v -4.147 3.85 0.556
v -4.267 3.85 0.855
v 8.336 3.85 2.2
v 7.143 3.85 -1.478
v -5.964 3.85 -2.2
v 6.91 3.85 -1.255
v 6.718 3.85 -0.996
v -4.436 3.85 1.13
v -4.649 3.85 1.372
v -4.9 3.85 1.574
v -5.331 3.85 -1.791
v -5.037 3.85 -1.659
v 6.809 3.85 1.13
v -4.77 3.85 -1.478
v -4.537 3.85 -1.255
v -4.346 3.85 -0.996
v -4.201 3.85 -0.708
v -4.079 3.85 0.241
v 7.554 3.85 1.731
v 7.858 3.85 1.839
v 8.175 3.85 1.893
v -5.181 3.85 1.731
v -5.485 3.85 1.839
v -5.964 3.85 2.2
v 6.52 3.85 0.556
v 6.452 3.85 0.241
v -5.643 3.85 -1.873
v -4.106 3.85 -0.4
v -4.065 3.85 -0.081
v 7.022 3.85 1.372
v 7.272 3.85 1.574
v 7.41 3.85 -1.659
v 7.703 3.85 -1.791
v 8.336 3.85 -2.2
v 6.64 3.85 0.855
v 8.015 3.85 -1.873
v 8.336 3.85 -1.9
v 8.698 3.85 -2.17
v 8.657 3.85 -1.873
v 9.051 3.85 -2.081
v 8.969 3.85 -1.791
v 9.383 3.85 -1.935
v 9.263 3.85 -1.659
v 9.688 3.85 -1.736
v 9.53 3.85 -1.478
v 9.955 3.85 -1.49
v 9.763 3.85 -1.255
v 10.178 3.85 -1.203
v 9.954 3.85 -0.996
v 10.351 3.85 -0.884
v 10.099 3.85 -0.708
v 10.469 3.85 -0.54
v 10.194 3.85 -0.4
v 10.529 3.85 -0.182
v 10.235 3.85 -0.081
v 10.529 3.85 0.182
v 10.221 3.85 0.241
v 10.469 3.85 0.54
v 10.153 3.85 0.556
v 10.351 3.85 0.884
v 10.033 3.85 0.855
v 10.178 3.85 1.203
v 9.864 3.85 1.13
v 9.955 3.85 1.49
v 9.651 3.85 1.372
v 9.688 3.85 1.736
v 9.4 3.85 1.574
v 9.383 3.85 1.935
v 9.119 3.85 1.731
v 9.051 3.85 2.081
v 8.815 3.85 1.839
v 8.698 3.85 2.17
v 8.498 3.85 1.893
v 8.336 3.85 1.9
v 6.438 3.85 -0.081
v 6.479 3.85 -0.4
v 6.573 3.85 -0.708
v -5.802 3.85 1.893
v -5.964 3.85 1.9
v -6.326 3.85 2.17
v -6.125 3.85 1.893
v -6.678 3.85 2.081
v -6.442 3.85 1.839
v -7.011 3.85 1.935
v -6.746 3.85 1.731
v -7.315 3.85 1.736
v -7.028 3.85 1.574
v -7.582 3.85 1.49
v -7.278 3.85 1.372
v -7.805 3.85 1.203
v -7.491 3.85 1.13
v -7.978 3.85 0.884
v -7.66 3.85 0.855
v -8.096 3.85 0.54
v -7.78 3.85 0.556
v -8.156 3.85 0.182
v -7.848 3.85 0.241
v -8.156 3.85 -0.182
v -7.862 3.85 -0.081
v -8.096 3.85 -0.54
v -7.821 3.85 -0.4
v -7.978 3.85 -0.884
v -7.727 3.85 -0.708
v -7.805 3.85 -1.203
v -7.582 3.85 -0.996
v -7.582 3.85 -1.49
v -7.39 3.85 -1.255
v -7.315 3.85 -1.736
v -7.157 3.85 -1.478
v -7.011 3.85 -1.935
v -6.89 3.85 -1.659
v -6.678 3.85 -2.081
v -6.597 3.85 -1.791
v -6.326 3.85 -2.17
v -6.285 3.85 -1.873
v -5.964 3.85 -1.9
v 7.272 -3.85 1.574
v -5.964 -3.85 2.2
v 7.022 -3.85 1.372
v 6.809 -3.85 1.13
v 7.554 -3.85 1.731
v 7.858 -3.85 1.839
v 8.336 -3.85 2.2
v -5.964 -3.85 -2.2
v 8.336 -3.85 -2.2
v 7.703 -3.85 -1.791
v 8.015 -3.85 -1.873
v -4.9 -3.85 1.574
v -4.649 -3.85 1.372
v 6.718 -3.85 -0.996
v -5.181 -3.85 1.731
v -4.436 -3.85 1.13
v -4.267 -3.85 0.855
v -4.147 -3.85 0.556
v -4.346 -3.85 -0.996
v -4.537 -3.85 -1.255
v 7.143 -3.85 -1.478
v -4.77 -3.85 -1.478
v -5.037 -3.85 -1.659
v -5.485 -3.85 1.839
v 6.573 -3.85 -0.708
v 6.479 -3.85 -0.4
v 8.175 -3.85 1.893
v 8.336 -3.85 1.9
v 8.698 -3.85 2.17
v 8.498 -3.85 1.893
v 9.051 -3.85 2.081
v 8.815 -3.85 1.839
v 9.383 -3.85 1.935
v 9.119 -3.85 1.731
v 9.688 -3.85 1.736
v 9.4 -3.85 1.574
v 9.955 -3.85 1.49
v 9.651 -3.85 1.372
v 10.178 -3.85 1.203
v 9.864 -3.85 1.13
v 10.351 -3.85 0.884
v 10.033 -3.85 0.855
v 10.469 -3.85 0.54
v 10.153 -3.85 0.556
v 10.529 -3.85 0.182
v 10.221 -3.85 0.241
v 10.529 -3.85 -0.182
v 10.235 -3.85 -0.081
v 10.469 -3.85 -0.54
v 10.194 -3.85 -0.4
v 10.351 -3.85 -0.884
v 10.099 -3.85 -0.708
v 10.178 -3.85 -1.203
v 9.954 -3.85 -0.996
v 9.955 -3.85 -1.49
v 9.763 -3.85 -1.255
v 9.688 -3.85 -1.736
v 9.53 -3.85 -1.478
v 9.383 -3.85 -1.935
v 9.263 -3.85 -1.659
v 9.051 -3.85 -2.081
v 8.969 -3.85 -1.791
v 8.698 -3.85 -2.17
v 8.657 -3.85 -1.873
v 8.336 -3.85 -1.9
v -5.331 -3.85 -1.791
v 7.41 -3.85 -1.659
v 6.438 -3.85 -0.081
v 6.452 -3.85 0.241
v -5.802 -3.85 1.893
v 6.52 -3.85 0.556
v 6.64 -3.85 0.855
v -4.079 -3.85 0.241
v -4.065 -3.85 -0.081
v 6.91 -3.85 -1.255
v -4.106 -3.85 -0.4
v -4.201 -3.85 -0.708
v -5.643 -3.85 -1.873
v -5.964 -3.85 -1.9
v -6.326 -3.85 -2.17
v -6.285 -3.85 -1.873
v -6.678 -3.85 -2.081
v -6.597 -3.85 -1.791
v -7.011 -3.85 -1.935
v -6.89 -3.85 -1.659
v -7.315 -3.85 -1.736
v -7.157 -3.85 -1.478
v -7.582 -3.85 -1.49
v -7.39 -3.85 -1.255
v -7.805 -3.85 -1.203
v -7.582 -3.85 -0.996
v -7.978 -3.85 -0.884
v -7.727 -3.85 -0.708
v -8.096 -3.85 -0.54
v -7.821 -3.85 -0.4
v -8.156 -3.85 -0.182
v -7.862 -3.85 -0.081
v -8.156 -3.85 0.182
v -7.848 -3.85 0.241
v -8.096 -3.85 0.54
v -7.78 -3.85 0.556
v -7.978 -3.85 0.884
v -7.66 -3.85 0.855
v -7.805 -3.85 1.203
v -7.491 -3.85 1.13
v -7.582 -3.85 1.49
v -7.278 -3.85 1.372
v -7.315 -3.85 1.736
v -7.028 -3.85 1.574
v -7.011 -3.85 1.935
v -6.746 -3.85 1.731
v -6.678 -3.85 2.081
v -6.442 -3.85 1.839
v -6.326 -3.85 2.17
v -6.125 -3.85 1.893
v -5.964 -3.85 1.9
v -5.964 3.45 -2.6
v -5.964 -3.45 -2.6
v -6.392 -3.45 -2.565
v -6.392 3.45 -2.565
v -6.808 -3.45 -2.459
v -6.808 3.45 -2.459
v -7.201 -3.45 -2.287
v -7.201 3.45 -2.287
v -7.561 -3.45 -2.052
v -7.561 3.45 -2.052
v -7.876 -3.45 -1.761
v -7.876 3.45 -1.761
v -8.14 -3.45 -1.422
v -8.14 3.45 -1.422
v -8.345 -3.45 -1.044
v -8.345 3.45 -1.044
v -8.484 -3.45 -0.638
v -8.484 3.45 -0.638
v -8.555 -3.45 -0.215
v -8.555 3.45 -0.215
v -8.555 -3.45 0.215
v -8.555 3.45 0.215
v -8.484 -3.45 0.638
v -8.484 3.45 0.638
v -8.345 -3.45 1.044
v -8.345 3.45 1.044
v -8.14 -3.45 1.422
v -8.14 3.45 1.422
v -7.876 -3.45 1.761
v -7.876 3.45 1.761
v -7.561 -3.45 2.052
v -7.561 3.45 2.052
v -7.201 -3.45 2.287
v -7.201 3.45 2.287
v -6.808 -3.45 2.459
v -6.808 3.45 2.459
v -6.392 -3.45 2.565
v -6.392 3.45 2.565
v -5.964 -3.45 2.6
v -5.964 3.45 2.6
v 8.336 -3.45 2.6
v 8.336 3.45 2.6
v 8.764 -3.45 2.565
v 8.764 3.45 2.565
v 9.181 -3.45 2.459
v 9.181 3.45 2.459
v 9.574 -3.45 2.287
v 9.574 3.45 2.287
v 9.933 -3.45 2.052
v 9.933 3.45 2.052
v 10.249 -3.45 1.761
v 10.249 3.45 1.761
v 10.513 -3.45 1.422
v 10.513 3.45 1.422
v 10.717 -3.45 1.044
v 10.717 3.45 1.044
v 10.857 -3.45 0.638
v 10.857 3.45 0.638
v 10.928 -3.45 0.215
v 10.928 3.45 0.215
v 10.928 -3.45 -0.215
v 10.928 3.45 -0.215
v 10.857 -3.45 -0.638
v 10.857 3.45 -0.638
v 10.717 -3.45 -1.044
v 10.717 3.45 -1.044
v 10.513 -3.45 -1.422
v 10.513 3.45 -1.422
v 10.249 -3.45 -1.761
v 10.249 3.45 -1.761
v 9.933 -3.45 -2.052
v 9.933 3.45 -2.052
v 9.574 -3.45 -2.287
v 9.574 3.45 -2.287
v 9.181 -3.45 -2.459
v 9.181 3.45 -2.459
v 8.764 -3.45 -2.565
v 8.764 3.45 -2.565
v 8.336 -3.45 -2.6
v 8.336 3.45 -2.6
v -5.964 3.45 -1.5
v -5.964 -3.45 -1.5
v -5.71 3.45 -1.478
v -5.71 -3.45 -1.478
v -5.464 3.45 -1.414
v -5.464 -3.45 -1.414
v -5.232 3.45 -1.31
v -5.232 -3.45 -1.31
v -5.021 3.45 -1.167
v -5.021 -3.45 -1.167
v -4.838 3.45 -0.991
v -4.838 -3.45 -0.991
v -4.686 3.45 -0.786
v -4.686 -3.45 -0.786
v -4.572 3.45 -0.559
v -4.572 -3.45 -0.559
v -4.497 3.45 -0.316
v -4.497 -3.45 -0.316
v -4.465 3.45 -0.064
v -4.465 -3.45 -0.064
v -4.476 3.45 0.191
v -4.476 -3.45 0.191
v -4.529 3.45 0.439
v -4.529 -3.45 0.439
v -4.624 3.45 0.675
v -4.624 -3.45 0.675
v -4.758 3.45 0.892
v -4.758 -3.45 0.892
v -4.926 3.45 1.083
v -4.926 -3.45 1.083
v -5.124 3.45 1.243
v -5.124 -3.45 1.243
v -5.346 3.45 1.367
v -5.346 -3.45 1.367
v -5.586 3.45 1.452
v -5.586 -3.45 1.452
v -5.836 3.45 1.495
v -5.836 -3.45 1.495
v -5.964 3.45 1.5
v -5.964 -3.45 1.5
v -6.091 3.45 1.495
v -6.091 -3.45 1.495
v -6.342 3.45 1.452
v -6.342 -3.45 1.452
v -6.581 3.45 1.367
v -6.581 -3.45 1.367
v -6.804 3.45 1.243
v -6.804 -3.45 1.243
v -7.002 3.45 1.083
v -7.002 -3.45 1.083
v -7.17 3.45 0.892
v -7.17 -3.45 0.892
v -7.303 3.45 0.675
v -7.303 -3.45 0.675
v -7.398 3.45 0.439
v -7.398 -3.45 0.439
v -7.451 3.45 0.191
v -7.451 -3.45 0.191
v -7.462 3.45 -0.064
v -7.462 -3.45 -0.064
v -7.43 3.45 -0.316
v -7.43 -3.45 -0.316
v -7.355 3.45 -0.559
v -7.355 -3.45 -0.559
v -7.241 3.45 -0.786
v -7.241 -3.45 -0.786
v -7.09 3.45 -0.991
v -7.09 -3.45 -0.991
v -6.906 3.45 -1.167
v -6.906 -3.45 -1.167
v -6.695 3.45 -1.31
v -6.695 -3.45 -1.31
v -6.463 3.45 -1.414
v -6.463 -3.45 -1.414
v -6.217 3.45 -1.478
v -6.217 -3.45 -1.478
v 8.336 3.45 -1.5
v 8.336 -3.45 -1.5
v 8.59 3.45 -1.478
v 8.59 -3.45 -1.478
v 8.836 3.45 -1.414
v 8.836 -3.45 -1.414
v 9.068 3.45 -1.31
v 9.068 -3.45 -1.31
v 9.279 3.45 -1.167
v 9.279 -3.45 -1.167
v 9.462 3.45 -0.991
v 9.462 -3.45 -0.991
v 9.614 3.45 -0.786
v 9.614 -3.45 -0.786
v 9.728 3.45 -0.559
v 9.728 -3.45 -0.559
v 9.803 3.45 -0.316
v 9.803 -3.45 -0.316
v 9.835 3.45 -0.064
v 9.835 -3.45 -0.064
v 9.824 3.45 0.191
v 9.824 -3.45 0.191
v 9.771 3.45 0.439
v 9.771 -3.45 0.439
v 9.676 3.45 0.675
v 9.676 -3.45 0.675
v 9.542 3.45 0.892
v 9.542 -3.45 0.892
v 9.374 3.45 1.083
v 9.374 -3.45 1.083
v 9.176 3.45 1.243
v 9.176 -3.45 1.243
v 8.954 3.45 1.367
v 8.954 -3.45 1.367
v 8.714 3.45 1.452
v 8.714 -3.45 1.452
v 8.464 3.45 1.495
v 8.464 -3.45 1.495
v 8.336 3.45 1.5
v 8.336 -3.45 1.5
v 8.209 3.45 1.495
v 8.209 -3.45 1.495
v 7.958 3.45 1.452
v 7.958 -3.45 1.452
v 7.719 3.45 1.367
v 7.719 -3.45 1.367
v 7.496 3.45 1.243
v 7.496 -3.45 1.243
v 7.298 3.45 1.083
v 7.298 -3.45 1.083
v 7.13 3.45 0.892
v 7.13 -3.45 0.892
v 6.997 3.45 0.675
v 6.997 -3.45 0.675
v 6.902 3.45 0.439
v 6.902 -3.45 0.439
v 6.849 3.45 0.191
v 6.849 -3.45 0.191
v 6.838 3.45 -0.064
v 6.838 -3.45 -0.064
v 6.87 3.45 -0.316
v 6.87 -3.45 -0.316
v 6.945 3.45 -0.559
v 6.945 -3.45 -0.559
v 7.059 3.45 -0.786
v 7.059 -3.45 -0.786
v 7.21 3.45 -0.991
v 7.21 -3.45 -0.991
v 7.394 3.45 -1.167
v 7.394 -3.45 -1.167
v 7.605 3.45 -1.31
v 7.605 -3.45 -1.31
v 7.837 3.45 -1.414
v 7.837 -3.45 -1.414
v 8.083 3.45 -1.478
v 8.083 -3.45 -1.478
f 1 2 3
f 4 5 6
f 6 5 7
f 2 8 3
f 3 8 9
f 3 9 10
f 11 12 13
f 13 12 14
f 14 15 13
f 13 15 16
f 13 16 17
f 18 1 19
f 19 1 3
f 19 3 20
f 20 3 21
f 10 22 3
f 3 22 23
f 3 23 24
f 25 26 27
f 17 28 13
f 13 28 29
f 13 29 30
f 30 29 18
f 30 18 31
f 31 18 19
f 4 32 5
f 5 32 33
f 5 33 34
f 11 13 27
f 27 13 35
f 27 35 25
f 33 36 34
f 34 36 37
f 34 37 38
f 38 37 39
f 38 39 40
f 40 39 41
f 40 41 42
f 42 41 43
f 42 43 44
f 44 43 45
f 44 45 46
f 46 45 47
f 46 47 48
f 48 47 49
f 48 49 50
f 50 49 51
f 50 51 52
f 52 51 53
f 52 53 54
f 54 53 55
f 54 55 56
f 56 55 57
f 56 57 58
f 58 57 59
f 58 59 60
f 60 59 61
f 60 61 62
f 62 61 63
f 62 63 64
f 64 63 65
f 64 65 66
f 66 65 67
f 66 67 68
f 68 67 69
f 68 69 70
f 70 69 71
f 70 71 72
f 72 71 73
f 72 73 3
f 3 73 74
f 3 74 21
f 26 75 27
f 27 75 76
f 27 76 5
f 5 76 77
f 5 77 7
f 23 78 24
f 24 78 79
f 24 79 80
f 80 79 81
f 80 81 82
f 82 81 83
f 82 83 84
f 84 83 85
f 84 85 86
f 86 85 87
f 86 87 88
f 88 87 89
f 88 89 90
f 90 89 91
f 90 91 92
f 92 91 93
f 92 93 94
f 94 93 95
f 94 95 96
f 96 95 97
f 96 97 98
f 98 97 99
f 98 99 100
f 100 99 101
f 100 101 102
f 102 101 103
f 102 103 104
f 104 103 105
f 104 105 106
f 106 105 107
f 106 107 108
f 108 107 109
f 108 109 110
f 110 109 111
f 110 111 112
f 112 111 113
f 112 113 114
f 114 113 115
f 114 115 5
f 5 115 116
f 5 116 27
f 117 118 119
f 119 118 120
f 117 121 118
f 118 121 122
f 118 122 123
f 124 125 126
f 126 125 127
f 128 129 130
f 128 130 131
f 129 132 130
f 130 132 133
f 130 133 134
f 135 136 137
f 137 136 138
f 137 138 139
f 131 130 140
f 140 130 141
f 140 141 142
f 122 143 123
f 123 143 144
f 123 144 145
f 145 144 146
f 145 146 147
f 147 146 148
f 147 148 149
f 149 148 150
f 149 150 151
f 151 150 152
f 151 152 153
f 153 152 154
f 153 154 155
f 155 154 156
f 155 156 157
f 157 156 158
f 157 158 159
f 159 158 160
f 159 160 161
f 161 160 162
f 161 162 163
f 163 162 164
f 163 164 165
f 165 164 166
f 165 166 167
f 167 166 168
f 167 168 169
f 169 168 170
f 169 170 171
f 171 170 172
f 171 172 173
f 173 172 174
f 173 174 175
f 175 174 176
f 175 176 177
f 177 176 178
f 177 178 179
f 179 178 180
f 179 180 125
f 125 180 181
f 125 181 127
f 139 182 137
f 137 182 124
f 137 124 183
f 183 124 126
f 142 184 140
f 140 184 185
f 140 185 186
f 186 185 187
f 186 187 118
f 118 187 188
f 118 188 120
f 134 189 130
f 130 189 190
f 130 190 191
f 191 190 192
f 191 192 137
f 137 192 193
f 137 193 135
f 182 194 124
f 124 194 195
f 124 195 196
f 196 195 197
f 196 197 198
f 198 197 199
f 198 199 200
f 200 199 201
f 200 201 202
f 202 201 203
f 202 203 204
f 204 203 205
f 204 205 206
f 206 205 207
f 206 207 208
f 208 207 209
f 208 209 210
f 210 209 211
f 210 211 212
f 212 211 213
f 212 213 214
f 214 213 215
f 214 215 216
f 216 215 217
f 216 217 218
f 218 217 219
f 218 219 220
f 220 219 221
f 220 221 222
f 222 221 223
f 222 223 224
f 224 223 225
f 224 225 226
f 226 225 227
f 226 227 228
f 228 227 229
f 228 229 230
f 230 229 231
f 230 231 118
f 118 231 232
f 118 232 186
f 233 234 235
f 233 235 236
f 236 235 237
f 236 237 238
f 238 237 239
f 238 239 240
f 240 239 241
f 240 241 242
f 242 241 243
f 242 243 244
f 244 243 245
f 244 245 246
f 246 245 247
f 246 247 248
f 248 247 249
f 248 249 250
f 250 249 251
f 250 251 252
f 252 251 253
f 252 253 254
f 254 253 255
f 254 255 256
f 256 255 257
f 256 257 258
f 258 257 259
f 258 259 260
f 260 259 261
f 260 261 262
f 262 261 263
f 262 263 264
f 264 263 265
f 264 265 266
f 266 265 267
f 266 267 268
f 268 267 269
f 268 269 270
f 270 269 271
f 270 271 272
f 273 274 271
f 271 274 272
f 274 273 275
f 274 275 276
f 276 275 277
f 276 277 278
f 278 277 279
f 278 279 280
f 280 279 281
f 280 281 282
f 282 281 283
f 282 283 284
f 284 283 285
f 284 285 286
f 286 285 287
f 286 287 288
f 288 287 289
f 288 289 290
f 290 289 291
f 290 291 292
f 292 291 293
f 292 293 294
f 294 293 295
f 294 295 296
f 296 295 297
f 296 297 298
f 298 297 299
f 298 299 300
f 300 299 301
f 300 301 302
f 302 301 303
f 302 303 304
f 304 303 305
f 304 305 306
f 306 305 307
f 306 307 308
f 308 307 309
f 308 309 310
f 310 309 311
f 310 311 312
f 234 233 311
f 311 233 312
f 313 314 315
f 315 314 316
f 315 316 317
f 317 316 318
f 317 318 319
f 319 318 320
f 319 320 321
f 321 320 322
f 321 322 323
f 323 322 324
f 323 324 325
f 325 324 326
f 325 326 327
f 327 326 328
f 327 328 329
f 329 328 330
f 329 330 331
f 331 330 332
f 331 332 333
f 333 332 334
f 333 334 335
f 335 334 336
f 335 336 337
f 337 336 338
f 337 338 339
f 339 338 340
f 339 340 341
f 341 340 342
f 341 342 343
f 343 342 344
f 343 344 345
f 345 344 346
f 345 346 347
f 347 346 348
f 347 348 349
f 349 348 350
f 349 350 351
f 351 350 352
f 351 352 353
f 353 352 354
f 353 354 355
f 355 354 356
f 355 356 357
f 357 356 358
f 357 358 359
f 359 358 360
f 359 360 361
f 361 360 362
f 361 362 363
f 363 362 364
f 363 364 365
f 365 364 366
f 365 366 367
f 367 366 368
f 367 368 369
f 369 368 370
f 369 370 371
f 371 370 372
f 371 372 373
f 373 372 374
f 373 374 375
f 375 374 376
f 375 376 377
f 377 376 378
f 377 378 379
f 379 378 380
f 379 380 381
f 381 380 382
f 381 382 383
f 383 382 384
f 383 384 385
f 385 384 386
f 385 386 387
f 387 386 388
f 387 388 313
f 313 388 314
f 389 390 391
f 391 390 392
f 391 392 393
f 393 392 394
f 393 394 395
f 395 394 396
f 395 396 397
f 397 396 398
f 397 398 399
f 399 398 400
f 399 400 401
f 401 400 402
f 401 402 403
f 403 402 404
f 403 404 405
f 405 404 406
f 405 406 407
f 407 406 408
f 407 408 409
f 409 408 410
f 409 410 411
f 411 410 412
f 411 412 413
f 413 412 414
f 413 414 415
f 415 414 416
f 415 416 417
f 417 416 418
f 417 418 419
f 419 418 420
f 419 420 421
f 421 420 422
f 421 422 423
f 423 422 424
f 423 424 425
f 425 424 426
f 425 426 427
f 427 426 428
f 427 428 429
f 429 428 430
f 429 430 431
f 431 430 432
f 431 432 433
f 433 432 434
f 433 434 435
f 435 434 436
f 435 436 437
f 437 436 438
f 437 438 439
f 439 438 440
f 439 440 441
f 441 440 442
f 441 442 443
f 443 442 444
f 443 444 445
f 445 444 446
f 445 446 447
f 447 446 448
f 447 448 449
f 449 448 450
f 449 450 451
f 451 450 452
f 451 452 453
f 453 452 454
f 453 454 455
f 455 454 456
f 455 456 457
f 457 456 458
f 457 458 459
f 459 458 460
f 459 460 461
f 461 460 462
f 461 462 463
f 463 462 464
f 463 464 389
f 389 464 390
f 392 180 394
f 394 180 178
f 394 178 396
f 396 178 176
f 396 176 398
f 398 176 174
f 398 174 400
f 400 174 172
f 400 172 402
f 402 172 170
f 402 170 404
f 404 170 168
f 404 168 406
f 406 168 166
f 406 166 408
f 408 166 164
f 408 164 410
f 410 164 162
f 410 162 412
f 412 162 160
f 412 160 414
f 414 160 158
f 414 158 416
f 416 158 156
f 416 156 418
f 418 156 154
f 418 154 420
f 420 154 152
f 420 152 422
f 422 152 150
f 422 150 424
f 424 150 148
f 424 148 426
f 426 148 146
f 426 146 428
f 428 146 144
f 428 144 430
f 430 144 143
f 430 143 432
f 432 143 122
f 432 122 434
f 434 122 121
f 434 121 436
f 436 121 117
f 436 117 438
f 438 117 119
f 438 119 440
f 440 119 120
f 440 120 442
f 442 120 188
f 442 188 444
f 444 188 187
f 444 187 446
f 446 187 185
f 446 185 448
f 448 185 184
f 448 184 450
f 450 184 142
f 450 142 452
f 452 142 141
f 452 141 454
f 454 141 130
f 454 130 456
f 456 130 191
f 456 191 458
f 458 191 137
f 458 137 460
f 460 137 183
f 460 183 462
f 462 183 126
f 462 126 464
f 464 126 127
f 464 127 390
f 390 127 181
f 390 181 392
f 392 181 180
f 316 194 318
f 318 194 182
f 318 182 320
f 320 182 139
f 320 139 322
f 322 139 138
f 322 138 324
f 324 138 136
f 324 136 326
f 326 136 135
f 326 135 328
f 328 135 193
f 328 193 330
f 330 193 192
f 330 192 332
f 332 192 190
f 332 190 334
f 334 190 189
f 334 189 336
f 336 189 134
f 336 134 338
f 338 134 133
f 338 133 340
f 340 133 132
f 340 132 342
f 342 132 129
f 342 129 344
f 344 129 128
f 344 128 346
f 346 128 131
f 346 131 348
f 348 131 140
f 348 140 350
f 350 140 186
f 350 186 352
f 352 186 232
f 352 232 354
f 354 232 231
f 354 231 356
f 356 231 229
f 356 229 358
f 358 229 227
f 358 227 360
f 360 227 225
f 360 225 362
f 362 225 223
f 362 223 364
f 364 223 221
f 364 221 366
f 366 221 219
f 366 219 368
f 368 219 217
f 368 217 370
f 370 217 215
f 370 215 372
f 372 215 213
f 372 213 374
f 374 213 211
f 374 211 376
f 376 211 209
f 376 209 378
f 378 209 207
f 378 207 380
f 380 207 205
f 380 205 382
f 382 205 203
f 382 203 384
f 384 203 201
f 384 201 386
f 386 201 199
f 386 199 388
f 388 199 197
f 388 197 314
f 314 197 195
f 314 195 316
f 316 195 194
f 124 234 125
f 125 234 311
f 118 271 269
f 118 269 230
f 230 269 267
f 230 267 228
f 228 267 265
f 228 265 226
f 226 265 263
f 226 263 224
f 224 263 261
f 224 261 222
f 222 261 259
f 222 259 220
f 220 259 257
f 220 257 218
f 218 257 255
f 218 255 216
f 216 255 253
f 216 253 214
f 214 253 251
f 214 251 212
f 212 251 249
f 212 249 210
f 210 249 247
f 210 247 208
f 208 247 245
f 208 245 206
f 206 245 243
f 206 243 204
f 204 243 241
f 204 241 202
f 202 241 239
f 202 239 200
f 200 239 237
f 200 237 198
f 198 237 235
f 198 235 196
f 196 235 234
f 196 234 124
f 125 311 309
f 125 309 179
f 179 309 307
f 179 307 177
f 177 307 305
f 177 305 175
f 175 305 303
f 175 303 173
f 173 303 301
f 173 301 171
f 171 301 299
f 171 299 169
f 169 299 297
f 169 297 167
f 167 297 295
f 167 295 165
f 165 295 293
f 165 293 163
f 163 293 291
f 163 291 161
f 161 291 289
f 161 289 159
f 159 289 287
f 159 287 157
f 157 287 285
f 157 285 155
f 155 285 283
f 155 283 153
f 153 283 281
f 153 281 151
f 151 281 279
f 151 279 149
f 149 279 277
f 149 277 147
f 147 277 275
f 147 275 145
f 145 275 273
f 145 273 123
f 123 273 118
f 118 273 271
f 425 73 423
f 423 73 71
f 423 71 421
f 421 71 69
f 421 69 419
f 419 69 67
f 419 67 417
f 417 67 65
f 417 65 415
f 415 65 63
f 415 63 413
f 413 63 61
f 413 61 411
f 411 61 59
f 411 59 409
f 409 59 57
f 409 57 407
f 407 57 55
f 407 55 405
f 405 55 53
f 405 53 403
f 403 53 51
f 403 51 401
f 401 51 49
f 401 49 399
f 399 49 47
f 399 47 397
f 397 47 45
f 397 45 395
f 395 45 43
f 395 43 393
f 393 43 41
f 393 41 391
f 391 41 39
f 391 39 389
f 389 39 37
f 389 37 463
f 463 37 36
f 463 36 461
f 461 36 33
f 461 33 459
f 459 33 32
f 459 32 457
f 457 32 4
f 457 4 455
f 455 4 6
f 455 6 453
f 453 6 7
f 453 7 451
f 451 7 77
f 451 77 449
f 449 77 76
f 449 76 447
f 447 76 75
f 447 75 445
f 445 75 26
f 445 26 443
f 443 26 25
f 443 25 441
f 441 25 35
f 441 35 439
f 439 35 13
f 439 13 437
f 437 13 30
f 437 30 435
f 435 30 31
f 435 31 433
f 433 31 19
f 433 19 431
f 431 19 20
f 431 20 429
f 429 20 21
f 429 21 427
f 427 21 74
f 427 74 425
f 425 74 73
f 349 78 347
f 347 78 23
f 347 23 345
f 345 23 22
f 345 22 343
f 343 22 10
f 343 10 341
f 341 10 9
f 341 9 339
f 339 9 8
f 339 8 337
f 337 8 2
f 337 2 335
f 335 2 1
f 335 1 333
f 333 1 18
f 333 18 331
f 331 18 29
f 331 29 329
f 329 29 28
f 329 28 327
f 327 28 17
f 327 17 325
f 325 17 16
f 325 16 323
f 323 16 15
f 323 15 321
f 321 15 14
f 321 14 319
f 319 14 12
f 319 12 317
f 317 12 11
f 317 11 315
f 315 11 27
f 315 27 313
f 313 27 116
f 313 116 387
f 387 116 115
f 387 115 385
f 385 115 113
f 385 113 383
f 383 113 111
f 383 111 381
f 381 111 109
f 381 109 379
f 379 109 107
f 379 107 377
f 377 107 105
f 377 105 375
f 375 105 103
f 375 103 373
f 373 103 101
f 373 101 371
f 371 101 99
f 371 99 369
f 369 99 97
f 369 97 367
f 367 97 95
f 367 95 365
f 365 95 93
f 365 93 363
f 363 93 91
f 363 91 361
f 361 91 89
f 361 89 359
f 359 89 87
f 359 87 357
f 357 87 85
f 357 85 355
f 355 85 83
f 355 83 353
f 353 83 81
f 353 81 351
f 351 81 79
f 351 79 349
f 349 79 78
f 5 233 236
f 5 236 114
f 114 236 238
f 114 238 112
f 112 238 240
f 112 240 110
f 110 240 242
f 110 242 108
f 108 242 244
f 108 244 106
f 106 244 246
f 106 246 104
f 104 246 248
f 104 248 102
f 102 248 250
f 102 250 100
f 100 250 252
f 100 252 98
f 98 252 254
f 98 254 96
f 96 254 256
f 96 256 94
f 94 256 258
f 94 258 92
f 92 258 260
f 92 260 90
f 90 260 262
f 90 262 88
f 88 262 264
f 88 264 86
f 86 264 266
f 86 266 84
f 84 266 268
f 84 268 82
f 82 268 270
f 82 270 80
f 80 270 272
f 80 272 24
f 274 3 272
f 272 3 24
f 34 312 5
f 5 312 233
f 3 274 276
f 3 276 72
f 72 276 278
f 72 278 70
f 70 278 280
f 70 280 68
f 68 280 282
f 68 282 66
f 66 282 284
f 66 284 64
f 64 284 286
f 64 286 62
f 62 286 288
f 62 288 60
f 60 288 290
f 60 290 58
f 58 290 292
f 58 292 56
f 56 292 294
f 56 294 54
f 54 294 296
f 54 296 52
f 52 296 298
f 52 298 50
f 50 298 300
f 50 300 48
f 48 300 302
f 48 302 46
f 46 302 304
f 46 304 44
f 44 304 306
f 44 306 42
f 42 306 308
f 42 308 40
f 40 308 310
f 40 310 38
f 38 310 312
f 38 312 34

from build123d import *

# Parameters (mm, degrees)
SKETCH1_R           = 1.5
BOSS_EXTRUDE1_DEPTH = 3.85
CHAMFER2_SIZE       = 0.4


with BuildPart() as part:
    # Sketch1 → Boss-Extrude1 (new body, symmetric)
    with BuildSketch(Plane(origin=(0, 0, 0), x_dir=(1, 0, 0), z_dir=(0, 1, 0))):
        with BuildLine():
            Line((-5.963610114, 2.6), (8.336389886, 2.6))
            ThreePointArc((8.336389886, 2.6), (10.936389886, 0), (8.336389886, -2.6))
            Line((8.336389886, -2.6), (-5.963610114, -2.6))
            ThreePointArc((-5.963610114, -2.6), (-8.563610114, 0), (-5.963610114, 2.6))
        make_face()
        with Locations((-5.963610114, 0)):
            Circle(SKETCH1_R, mode=Mode.SUBTRACT)
        with Locations((8.336389886, 0)):
            Circle(SKETCH1_R, mode=Mode.SUBTRACT)
    extrude(amount=BOSS_EXTRUDE1_DEPTH, both=True)

    # Chamfer2
    chamfer2_edges = [part.edges().sort_by_distance(p)[0] for p in [
        (-7.463610114, -3.85, 0),
        (-7.463610114, 3.85, 0),
        (10.936389886, 3.85, 0),
        (6.836389886, -3.85, 0),
        (6.836389886, 3.85, 0),
        (1.186389886, 3.85, -2.6),
        (-8.563610114, 3.85, 0),
        (1.186389886, -3.85, -2.6),
        (10.936389886, -3.85, 0),
        (1.186389886, -3.85, 2.6),
        (-8.563610114, -3.85, 0),
        (1.186389886, 3.85, 2.6),
    ]]
    chamfer(chamfer2_edges, length=CHAMFER2_SIZE)


solid = part.part
